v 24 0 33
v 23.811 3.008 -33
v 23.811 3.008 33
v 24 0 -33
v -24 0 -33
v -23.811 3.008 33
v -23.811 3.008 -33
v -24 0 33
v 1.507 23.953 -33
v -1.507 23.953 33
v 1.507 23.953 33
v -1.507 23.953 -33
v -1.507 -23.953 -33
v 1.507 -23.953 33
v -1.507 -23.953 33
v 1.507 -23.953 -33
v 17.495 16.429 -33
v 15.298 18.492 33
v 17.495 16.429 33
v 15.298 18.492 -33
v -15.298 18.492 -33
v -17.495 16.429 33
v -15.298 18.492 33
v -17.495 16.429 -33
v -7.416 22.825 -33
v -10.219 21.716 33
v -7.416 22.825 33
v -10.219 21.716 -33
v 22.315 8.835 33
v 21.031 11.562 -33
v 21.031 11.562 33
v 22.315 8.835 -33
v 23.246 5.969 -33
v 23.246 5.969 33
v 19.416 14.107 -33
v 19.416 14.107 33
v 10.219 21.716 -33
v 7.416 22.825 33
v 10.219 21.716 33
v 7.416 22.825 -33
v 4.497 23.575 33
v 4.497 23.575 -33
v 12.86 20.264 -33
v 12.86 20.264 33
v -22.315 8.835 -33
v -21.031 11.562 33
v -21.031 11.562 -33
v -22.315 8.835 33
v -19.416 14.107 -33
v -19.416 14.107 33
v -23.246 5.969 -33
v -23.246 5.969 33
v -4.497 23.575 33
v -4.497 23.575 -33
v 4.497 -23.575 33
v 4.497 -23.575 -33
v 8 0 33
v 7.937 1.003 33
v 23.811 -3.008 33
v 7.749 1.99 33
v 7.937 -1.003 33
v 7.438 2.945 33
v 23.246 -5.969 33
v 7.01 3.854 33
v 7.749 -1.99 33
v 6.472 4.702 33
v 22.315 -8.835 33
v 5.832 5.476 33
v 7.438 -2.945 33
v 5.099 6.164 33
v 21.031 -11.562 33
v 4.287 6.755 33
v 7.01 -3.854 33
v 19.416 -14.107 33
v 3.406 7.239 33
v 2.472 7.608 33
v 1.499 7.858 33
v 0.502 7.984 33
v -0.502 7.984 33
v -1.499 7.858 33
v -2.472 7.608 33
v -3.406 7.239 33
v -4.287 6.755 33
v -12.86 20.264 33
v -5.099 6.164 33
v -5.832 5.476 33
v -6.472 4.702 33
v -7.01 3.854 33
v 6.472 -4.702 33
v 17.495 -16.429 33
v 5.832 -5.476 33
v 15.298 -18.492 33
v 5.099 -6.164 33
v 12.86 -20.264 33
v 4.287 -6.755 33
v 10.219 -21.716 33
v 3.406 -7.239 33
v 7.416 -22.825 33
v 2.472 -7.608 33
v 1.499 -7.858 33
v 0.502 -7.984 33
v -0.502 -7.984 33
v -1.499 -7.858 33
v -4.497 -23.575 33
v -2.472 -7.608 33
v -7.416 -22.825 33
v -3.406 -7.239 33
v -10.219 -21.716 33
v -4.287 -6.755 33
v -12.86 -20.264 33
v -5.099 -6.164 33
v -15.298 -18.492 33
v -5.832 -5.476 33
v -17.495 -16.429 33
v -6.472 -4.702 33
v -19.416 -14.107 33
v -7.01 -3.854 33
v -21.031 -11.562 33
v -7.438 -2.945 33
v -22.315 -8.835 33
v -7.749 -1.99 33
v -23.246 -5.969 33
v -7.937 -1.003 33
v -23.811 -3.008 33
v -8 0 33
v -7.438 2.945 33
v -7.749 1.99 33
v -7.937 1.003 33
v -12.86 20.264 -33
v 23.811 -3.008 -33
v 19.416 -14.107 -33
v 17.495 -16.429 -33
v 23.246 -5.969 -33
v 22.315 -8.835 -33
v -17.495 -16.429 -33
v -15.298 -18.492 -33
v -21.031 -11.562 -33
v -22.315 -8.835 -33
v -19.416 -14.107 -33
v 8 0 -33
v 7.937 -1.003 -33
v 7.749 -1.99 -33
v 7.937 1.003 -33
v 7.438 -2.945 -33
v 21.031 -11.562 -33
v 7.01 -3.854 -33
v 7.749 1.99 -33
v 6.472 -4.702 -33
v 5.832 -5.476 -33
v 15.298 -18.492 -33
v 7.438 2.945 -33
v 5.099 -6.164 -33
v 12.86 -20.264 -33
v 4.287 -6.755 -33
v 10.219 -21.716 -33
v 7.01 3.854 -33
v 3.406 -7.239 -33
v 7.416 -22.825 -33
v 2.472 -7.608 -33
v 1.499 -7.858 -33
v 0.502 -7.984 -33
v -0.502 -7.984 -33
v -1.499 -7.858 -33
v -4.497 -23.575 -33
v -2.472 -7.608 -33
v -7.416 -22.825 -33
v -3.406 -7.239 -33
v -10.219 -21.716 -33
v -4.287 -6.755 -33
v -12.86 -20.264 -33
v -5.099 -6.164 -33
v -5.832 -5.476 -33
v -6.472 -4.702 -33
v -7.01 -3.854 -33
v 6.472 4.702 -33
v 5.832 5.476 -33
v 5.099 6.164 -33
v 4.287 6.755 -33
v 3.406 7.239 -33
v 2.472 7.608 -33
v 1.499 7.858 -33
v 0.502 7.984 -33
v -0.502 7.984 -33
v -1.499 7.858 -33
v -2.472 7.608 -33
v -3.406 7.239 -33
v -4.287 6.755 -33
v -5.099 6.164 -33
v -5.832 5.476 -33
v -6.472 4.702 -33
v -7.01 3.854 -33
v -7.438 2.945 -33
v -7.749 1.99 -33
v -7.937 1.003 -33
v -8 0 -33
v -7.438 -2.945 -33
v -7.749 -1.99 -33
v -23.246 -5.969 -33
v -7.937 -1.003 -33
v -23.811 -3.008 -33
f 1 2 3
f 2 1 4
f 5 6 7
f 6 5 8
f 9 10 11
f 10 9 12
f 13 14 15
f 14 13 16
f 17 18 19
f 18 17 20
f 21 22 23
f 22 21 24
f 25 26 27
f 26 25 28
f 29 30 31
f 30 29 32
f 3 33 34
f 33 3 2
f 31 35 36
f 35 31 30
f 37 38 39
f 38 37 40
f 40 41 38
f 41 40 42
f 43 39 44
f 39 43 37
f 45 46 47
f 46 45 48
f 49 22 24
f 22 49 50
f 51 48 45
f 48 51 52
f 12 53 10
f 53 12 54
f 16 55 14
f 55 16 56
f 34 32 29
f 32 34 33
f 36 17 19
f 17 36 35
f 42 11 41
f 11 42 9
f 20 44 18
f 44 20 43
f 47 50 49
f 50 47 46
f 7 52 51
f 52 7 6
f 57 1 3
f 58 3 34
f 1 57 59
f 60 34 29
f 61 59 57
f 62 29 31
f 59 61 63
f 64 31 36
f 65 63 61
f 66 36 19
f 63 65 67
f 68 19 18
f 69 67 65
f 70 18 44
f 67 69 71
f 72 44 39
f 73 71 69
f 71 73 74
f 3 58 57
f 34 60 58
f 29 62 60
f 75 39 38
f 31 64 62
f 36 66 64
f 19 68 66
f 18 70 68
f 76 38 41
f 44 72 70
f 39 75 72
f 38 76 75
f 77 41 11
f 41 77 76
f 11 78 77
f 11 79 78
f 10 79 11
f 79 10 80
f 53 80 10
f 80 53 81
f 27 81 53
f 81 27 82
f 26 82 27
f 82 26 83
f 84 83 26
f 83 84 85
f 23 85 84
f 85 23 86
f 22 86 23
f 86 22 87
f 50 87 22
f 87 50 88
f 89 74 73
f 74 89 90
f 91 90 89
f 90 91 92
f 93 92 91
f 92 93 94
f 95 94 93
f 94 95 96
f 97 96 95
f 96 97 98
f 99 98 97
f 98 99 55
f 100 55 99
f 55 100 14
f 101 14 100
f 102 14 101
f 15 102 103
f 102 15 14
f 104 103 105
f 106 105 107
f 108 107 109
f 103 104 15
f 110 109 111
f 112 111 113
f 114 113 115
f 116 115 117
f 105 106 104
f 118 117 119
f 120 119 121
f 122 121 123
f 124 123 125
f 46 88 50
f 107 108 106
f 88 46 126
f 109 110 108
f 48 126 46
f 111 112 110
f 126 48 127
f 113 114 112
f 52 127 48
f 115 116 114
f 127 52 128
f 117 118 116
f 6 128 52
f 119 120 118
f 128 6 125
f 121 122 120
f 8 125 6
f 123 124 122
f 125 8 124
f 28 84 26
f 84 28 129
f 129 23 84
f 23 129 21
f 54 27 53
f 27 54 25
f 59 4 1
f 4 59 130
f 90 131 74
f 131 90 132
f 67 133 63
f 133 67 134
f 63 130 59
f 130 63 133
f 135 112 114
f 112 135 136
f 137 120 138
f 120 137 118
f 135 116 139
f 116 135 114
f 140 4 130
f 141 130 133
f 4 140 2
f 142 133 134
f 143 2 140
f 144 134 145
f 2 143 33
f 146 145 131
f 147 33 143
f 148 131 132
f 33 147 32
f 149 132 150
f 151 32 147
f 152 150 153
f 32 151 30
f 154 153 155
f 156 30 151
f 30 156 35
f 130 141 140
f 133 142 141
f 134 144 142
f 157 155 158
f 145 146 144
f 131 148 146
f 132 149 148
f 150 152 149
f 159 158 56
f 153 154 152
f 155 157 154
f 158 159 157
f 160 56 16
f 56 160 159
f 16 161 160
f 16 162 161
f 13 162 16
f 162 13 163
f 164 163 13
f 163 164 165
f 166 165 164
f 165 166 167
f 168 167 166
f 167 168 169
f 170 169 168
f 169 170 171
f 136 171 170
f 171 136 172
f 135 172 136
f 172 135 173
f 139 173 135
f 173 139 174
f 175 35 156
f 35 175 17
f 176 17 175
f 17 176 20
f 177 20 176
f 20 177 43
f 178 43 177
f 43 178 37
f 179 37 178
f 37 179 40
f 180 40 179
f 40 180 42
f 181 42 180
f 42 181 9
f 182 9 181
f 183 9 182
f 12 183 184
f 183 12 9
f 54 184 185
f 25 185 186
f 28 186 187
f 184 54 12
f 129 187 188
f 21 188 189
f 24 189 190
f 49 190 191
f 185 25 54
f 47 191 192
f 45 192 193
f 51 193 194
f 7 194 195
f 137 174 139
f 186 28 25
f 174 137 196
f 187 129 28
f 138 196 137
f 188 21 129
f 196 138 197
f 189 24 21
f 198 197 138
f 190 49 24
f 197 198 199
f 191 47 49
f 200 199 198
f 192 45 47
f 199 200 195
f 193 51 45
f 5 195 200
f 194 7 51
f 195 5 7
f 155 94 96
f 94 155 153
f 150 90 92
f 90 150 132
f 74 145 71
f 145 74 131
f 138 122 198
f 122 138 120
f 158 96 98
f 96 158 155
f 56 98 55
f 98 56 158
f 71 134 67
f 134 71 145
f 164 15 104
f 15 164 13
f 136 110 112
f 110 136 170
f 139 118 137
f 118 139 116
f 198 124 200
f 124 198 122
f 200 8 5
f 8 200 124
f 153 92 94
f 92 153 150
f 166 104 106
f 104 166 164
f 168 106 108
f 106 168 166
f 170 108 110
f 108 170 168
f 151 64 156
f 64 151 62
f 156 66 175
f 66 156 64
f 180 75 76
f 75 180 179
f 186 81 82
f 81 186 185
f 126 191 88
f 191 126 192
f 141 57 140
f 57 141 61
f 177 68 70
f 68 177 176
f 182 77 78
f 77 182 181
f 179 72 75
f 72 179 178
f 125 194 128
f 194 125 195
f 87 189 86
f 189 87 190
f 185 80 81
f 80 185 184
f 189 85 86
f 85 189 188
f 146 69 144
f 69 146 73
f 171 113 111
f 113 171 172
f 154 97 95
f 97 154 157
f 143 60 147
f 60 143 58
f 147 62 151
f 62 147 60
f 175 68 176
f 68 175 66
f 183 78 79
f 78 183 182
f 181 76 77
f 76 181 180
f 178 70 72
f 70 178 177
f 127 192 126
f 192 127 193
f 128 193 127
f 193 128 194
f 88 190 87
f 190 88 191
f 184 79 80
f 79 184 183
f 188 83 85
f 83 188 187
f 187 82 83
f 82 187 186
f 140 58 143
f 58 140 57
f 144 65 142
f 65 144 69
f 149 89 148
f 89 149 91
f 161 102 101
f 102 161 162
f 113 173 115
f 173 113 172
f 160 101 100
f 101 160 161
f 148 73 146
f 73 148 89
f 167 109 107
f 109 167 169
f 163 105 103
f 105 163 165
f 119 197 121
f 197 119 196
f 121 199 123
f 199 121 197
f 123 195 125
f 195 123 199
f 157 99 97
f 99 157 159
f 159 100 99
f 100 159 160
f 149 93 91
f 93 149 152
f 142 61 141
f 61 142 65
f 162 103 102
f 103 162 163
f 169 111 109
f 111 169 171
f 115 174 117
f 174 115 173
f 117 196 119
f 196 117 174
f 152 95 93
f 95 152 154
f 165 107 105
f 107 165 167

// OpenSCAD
$fn = 50;


difference() {
	union() {
		translate(v = [0, 0, -33.0000000000]) {
			cylinder(h = 66, r = 24.0000000000);
		}
	}
	union() {
		translate(v = [0, 0, -100.0000000000]) {
			cylinder(h = 200, r = 8);
		}
	}
}
